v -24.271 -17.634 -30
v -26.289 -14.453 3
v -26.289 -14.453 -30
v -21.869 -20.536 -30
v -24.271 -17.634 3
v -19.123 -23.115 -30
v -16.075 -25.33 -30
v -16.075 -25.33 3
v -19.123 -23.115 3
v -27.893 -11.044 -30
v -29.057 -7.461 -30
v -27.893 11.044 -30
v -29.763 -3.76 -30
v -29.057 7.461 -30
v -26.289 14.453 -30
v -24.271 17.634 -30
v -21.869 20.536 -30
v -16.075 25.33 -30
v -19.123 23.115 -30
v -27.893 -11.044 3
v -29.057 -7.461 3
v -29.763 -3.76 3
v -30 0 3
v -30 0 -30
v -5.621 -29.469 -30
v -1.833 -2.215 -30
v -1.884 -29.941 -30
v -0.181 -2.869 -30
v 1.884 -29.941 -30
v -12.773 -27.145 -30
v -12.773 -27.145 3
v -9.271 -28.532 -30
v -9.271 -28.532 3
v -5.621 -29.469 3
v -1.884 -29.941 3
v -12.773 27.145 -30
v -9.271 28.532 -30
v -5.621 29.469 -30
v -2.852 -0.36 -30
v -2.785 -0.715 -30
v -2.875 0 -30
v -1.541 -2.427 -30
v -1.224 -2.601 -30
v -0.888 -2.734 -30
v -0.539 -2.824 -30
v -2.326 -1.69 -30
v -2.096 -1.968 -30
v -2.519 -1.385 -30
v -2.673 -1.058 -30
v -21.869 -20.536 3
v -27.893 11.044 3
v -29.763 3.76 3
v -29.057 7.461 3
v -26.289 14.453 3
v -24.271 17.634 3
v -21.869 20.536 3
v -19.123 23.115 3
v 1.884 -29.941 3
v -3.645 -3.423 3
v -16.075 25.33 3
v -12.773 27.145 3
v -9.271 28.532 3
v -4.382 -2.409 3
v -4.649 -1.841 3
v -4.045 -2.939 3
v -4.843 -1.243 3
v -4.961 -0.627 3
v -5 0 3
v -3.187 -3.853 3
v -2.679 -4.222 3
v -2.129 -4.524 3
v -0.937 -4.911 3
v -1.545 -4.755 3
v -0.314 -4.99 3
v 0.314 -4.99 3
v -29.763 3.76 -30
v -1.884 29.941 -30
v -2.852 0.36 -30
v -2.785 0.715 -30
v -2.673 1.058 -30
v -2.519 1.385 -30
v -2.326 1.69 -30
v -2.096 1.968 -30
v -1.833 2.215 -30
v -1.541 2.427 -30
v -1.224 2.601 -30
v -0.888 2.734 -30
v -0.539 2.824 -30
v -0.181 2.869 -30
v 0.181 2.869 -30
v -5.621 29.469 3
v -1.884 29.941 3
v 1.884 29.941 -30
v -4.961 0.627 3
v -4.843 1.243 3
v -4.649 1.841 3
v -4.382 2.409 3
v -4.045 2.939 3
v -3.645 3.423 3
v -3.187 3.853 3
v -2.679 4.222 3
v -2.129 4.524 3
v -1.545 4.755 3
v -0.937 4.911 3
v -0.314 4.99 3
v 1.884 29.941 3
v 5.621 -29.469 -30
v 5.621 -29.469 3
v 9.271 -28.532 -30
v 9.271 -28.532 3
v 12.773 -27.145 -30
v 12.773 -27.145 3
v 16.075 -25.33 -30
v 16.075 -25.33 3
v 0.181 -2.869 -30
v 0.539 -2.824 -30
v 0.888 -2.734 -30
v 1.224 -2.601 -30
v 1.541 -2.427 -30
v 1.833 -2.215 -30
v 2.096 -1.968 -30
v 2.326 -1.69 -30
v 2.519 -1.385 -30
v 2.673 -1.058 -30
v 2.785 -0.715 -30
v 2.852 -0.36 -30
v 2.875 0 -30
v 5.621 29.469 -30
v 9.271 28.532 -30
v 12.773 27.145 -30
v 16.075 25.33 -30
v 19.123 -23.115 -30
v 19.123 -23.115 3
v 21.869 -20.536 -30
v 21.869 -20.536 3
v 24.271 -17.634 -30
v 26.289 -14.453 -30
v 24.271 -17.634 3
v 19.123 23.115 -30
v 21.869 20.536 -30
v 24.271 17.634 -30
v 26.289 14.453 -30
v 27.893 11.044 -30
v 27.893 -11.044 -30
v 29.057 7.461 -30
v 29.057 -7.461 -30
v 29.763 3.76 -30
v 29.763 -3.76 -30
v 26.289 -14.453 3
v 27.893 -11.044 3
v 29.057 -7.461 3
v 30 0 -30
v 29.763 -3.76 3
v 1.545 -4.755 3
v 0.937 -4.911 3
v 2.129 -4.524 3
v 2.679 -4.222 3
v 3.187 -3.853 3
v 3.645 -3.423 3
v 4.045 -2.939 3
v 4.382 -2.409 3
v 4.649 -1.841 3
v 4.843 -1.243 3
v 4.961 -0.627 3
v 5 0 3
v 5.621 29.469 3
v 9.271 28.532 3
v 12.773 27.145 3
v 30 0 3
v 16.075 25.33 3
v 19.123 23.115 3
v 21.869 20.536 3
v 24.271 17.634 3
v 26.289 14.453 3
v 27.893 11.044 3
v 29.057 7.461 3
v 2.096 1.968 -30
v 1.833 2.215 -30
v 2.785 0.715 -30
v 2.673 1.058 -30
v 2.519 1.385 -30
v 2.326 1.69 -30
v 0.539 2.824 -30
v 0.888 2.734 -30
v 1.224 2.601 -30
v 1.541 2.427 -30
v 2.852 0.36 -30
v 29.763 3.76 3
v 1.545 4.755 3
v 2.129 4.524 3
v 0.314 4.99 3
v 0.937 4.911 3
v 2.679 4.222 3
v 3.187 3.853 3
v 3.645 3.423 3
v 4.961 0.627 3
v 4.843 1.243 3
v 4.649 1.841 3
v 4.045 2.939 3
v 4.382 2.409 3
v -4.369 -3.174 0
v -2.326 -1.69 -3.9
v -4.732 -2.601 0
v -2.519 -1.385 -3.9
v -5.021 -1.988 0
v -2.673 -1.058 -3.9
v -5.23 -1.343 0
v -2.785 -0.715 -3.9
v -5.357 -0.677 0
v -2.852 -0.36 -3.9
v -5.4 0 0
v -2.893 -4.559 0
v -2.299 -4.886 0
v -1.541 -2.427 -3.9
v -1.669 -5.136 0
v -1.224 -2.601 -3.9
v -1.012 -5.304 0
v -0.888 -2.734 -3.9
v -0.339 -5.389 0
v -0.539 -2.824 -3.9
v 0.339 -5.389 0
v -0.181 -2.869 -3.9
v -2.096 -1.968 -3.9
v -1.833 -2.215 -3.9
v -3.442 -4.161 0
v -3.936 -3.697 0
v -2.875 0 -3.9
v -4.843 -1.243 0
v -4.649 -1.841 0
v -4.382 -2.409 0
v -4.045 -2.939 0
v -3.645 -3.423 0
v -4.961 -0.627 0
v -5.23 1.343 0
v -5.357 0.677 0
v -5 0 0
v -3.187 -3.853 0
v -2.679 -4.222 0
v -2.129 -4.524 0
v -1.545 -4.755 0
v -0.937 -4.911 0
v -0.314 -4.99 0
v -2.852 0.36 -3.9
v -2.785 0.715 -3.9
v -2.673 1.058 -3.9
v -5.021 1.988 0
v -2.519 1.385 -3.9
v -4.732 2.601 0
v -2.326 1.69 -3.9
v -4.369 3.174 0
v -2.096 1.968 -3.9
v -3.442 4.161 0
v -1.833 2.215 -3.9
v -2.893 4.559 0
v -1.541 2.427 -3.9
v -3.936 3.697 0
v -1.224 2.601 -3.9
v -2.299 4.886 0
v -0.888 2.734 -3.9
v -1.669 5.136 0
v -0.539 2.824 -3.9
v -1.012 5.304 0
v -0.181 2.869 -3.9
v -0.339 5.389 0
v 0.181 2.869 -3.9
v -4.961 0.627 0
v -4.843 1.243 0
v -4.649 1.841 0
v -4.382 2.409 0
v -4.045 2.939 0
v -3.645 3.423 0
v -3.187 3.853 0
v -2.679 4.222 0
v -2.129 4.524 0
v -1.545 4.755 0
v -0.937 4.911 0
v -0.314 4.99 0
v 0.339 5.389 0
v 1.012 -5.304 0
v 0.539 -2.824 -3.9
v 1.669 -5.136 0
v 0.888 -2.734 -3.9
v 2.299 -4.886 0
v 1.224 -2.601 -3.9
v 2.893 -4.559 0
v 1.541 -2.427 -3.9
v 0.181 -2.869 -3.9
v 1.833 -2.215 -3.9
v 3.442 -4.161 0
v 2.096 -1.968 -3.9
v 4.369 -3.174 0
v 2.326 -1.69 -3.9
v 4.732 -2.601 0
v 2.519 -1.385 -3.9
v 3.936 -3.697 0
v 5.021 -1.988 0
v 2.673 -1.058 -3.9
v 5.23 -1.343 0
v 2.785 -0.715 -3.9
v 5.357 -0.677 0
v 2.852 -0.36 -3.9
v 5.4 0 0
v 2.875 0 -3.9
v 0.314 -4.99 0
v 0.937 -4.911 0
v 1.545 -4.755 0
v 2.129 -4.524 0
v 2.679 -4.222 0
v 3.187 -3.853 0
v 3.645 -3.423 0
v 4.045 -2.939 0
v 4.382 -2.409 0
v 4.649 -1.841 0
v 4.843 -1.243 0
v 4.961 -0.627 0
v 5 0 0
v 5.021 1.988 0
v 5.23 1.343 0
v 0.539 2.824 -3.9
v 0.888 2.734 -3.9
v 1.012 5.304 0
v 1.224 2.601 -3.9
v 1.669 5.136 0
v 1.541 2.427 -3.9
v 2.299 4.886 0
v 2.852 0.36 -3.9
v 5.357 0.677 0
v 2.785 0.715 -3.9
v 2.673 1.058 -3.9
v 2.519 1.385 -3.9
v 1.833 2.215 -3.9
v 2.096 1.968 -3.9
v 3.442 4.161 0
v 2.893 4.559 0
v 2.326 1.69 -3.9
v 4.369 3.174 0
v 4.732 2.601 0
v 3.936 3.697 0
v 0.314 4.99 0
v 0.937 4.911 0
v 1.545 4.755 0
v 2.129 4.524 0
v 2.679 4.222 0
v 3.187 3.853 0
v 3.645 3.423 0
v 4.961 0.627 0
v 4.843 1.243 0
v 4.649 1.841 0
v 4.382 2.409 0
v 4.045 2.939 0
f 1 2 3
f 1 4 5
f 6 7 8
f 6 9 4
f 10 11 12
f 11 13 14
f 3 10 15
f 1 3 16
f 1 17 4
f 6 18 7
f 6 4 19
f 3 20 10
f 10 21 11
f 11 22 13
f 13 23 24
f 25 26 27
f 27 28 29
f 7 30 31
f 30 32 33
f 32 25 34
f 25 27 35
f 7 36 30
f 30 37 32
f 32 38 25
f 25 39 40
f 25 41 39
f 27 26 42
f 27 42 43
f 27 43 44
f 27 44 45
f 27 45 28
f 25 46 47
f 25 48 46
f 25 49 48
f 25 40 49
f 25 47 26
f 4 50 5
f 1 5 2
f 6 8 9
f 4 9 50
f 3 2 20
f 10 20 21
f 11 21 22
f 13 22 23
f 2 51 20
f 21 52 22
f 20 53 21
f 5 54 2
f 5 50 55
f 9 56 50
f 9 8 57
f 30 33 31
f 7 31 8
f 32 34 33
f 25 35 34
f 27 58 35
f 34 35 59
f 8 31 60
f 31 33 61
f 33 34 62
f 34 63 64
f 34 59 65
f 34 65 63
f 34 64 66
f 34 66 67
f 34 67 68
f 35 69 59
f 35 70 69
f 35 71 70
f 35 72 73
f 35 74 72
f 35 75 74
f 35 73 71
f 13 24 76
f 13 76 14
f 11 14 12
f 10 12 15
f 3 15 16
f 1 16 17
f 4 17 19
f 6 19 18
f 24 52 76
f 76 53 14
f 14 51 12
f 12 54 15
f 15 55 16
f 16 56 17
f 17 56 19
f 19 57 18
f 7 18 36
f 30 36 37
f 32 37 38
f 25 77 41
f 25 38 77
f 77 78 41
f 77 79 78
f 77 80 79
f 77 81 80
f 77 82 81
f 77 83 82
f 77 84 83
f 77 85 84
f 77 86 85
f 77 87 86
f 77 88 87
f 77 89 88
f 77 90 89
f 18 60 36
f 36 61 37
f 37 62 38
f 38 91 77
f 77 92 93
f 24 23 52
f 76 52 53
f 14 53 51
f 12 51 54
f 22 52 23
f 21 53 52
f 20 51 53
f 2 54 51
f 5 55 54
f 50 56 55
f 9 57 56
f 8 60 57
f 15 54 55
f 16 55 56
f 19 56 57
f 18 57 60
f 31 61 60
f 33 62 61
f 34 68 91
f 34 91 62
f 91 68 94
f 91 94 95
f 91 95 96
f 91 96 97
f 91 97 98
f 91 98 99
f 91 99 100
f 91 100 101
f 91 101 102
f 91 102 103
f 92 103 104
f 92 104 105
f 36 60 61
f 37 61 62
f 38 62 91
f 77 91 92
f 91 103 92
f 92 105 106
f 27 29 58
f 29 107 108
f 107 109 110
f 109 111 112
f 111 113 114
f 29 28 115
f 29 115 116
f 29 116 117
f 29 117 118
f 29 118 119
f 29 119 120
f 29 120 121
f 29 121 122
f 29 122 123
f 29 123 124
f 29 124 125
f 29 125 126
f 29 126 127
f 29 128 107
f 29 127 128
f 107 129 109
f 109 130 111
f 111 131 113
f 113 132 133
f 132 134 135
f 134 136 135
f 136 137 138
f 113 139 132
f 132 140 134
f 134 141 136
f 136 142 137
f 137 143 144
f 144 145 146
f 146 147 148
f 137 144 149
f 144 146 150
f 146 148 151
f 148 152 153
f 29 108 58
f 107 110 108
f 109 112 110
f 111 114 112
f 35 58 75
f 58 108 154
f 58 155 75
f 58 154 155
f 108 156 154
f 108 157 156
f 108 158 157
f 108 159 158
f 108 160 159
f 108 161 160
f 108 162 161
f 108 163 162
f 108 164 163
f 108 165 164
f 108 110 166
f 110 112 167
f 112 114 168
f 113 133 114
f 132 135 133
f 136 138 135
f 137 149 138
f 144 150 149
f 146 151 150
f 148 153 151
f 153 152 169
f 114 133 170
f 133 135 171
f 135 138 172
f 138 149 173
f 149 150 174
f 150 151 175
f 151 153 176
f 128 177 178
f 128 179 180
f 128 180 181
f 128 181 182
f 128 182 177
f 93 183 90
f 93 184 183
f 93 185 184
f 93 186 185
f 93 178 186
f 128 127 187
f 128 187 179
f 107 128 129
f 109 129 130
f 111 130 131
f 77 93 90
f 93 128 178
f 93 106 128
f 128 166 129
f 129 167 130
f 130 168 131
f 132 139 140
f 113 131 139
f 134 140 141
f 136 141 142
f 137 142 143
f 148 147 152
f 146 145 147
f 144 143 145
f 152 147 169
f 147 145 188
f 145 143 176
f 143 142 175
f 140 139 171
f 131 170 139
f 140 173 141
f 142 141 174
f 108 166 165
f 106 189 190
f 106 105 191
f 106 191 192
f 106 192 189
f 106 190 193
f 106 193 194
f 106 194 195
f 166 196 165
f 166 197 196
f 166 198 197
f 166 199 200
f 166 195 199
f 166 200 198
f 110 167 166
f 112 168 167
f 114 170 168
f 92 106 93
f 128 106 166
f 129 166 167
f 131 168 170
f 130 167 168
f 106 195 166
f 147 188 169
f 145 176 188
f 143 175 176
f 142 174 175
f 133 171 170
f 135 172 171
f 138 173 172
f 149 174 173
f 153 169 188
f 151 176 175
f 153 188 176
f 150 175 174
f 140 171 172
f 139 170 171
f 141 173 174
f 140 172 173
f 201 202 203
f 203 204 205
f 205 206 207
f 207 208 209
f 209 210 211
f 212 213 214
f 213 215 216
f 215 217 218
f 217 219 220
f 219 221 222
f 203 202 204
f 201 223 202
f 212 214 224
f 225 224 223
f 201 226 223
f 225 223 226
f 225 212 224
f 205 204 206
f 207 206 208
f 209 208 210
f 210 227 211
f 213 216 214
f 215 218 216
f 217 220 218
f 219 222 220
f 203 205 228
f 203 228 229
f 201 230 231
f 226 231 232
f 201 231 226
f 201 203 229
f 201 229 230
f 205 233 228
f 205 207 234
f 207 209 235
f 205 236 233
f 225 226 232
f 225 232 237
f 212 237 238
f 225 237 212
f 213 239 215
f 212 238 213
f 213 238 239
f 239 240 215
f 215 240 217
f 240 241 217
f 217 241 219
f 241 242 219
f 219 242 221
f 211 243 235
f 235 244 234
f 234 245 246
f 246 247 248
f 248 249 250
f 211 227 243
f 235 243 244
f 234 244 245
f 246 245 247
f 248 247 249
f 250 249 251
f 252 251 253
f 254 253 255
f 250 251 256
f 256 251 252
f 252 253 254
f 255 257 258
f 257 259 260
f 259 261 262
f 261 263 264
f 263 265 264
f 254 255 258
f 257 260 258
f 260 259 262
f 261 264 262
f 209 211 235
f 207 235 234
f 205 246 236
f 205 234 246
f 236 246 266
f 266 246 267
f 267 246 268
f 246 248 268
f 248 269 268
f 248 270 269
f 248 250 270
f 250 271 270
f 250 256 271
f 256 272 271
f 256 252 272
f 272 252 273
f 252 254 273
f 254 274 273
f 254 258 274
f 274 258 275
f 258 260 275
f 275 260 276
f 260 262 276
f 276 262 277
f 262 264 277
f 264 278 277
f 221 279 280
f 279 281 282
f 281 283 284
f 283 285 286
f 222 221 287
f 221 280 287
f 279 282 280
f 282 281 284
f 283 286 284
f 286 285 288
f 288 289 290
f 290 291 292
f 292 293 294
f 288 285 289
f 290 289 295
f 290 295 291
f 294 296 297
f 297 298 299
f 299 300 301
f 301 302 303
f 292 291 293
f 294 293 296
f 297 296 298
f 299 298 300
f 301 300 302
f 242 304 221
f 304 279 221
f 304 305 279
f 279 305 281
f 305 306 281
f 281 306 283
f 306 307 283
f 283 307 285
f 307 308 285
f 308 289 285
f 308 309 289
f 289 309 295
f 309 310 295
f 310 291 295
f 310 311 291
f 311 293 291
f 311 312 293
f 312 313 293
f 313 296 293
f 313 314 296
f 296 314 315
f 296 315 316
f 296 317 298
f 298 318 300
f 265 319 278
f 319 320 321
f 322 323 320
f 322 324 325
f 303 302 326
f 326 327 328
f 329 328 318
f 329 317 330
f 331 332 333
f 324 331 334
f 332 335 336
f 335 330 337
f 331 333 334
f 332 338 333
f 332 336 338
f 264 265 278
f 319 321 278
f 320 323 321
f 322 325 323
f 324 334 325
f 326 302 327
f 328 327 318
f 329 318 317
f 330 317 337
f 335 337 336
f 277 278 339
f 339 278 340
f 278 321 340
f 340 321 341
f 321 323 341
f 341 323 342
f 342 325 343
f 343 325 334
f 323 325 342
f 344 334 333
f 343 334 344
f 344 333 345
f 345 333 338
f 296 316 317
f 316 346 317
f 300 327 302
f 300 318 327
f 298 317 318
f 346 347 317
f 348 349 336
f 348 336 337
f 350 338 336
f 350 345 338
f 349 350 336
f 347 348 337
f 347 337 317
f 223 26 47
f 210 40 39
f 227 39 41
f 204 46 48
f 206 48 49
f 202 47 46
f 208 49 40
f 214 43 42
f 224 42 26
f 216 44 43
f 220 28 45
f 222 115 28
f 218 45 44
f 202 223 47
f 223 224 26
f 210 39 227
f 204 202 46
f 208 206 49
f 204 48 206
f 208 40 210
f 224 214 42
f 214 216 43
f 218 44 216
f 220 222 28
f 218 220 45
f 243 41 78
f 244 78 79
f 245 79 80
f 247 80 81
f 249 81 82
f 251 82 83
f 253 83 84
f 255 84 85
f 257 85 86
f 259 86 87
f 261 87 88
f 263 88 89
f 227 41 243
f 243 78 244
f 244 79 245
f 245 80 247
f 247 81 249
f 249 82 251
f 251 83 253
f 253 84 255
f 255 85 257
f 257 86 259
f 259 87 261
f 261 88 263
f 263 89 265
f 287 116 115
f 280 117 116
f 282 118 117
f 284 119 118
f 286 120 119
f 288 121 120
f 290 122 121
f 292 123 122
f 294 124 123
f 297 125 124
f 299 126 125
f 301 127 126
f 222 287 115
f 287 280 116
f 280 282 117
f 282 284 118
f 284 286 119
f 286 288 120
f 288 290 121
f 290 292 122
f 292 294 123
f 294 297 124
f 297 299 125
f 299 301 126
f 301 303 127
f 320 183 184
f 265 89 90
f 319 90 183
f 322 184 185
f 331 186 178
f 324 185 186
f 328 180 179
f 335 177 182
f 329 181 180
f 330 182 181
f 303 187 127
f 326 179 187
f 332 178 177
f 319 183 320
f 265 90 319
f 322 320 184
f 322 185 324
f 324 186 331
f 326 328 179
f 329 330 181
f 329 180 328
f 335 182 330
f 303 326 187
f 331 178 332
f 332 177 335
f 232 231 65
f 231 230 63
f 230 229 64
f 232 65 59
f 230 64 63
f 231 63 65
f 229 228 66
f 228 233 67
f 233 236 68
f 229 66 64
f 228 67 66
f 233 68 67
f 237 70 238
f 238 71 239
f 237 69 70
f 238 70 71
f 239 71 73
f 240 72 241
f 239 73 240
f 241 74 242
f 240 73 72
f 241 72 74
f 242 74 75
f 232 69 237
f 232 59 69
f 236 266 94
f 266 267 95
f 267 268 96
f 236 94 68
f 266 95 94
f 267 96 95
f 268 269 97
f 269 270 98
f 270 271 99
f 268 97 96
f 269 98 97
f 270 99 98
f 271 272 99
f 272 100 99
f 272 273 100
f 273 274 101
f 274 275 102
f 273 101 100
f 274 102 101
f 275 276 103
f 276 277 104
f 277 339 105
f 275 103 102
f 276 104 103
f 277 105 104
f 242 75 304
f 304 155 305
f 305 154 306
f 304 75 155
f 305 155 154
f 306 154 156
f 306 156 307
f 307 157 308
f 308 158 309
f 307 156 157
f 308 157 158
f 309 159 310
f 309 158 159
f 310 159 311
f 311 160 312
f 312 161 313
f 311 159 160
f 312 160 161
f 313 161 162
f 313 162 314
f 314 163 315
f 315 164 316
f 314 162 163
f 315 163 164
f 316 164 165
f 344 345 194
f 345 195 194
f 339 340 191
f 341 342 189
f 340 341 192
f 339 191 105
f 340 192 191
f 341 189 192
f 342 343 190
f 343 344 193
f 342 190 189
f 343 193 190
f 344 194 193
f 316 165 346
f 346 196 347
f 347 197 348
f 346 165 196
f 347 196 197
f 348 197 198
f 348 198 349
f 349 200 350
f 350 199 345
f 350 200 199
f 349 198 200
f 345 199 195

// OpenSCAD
$fn = 50;


difference() {
	union() {
		translate(v = [0, 0, -30.0000000000]) {
			cylinder(h = 33, r = 30.0000000000);
		}
		#translate(v = [0, 0, -33.0000000000]) {
			cylinder(h = 33, r = 2.8750000000);
		}
	}
	union() {
		translate(v = [0, 0, 0]) {
			rotate(a = [0, 0, 0]) {
				difference() {
					union() {
						translate(v = [0, 0, -33.0000000000]) {
							cylinder(h = 33, r = 2.6000000000);
						}
						translate(v = [0, 0, -3.9000000000]) {
							cylinder(h = 3.9000000000, r1 = 2.8750000000, r2 = 5.4000000000);
						}
						translate(v = [0, 0, -33.0000000000]) {
							cylinder(h = 33, r = 2.8750000000);
						}
						translate(v = [0, 0, -33.0000000000]) {
							cylinder(h = 33, r = 2.6000000000);
						}
					}
					union();
				}
			}
		}
		#cylinder(h = 3, r = 5.0000000000);
	}
}
